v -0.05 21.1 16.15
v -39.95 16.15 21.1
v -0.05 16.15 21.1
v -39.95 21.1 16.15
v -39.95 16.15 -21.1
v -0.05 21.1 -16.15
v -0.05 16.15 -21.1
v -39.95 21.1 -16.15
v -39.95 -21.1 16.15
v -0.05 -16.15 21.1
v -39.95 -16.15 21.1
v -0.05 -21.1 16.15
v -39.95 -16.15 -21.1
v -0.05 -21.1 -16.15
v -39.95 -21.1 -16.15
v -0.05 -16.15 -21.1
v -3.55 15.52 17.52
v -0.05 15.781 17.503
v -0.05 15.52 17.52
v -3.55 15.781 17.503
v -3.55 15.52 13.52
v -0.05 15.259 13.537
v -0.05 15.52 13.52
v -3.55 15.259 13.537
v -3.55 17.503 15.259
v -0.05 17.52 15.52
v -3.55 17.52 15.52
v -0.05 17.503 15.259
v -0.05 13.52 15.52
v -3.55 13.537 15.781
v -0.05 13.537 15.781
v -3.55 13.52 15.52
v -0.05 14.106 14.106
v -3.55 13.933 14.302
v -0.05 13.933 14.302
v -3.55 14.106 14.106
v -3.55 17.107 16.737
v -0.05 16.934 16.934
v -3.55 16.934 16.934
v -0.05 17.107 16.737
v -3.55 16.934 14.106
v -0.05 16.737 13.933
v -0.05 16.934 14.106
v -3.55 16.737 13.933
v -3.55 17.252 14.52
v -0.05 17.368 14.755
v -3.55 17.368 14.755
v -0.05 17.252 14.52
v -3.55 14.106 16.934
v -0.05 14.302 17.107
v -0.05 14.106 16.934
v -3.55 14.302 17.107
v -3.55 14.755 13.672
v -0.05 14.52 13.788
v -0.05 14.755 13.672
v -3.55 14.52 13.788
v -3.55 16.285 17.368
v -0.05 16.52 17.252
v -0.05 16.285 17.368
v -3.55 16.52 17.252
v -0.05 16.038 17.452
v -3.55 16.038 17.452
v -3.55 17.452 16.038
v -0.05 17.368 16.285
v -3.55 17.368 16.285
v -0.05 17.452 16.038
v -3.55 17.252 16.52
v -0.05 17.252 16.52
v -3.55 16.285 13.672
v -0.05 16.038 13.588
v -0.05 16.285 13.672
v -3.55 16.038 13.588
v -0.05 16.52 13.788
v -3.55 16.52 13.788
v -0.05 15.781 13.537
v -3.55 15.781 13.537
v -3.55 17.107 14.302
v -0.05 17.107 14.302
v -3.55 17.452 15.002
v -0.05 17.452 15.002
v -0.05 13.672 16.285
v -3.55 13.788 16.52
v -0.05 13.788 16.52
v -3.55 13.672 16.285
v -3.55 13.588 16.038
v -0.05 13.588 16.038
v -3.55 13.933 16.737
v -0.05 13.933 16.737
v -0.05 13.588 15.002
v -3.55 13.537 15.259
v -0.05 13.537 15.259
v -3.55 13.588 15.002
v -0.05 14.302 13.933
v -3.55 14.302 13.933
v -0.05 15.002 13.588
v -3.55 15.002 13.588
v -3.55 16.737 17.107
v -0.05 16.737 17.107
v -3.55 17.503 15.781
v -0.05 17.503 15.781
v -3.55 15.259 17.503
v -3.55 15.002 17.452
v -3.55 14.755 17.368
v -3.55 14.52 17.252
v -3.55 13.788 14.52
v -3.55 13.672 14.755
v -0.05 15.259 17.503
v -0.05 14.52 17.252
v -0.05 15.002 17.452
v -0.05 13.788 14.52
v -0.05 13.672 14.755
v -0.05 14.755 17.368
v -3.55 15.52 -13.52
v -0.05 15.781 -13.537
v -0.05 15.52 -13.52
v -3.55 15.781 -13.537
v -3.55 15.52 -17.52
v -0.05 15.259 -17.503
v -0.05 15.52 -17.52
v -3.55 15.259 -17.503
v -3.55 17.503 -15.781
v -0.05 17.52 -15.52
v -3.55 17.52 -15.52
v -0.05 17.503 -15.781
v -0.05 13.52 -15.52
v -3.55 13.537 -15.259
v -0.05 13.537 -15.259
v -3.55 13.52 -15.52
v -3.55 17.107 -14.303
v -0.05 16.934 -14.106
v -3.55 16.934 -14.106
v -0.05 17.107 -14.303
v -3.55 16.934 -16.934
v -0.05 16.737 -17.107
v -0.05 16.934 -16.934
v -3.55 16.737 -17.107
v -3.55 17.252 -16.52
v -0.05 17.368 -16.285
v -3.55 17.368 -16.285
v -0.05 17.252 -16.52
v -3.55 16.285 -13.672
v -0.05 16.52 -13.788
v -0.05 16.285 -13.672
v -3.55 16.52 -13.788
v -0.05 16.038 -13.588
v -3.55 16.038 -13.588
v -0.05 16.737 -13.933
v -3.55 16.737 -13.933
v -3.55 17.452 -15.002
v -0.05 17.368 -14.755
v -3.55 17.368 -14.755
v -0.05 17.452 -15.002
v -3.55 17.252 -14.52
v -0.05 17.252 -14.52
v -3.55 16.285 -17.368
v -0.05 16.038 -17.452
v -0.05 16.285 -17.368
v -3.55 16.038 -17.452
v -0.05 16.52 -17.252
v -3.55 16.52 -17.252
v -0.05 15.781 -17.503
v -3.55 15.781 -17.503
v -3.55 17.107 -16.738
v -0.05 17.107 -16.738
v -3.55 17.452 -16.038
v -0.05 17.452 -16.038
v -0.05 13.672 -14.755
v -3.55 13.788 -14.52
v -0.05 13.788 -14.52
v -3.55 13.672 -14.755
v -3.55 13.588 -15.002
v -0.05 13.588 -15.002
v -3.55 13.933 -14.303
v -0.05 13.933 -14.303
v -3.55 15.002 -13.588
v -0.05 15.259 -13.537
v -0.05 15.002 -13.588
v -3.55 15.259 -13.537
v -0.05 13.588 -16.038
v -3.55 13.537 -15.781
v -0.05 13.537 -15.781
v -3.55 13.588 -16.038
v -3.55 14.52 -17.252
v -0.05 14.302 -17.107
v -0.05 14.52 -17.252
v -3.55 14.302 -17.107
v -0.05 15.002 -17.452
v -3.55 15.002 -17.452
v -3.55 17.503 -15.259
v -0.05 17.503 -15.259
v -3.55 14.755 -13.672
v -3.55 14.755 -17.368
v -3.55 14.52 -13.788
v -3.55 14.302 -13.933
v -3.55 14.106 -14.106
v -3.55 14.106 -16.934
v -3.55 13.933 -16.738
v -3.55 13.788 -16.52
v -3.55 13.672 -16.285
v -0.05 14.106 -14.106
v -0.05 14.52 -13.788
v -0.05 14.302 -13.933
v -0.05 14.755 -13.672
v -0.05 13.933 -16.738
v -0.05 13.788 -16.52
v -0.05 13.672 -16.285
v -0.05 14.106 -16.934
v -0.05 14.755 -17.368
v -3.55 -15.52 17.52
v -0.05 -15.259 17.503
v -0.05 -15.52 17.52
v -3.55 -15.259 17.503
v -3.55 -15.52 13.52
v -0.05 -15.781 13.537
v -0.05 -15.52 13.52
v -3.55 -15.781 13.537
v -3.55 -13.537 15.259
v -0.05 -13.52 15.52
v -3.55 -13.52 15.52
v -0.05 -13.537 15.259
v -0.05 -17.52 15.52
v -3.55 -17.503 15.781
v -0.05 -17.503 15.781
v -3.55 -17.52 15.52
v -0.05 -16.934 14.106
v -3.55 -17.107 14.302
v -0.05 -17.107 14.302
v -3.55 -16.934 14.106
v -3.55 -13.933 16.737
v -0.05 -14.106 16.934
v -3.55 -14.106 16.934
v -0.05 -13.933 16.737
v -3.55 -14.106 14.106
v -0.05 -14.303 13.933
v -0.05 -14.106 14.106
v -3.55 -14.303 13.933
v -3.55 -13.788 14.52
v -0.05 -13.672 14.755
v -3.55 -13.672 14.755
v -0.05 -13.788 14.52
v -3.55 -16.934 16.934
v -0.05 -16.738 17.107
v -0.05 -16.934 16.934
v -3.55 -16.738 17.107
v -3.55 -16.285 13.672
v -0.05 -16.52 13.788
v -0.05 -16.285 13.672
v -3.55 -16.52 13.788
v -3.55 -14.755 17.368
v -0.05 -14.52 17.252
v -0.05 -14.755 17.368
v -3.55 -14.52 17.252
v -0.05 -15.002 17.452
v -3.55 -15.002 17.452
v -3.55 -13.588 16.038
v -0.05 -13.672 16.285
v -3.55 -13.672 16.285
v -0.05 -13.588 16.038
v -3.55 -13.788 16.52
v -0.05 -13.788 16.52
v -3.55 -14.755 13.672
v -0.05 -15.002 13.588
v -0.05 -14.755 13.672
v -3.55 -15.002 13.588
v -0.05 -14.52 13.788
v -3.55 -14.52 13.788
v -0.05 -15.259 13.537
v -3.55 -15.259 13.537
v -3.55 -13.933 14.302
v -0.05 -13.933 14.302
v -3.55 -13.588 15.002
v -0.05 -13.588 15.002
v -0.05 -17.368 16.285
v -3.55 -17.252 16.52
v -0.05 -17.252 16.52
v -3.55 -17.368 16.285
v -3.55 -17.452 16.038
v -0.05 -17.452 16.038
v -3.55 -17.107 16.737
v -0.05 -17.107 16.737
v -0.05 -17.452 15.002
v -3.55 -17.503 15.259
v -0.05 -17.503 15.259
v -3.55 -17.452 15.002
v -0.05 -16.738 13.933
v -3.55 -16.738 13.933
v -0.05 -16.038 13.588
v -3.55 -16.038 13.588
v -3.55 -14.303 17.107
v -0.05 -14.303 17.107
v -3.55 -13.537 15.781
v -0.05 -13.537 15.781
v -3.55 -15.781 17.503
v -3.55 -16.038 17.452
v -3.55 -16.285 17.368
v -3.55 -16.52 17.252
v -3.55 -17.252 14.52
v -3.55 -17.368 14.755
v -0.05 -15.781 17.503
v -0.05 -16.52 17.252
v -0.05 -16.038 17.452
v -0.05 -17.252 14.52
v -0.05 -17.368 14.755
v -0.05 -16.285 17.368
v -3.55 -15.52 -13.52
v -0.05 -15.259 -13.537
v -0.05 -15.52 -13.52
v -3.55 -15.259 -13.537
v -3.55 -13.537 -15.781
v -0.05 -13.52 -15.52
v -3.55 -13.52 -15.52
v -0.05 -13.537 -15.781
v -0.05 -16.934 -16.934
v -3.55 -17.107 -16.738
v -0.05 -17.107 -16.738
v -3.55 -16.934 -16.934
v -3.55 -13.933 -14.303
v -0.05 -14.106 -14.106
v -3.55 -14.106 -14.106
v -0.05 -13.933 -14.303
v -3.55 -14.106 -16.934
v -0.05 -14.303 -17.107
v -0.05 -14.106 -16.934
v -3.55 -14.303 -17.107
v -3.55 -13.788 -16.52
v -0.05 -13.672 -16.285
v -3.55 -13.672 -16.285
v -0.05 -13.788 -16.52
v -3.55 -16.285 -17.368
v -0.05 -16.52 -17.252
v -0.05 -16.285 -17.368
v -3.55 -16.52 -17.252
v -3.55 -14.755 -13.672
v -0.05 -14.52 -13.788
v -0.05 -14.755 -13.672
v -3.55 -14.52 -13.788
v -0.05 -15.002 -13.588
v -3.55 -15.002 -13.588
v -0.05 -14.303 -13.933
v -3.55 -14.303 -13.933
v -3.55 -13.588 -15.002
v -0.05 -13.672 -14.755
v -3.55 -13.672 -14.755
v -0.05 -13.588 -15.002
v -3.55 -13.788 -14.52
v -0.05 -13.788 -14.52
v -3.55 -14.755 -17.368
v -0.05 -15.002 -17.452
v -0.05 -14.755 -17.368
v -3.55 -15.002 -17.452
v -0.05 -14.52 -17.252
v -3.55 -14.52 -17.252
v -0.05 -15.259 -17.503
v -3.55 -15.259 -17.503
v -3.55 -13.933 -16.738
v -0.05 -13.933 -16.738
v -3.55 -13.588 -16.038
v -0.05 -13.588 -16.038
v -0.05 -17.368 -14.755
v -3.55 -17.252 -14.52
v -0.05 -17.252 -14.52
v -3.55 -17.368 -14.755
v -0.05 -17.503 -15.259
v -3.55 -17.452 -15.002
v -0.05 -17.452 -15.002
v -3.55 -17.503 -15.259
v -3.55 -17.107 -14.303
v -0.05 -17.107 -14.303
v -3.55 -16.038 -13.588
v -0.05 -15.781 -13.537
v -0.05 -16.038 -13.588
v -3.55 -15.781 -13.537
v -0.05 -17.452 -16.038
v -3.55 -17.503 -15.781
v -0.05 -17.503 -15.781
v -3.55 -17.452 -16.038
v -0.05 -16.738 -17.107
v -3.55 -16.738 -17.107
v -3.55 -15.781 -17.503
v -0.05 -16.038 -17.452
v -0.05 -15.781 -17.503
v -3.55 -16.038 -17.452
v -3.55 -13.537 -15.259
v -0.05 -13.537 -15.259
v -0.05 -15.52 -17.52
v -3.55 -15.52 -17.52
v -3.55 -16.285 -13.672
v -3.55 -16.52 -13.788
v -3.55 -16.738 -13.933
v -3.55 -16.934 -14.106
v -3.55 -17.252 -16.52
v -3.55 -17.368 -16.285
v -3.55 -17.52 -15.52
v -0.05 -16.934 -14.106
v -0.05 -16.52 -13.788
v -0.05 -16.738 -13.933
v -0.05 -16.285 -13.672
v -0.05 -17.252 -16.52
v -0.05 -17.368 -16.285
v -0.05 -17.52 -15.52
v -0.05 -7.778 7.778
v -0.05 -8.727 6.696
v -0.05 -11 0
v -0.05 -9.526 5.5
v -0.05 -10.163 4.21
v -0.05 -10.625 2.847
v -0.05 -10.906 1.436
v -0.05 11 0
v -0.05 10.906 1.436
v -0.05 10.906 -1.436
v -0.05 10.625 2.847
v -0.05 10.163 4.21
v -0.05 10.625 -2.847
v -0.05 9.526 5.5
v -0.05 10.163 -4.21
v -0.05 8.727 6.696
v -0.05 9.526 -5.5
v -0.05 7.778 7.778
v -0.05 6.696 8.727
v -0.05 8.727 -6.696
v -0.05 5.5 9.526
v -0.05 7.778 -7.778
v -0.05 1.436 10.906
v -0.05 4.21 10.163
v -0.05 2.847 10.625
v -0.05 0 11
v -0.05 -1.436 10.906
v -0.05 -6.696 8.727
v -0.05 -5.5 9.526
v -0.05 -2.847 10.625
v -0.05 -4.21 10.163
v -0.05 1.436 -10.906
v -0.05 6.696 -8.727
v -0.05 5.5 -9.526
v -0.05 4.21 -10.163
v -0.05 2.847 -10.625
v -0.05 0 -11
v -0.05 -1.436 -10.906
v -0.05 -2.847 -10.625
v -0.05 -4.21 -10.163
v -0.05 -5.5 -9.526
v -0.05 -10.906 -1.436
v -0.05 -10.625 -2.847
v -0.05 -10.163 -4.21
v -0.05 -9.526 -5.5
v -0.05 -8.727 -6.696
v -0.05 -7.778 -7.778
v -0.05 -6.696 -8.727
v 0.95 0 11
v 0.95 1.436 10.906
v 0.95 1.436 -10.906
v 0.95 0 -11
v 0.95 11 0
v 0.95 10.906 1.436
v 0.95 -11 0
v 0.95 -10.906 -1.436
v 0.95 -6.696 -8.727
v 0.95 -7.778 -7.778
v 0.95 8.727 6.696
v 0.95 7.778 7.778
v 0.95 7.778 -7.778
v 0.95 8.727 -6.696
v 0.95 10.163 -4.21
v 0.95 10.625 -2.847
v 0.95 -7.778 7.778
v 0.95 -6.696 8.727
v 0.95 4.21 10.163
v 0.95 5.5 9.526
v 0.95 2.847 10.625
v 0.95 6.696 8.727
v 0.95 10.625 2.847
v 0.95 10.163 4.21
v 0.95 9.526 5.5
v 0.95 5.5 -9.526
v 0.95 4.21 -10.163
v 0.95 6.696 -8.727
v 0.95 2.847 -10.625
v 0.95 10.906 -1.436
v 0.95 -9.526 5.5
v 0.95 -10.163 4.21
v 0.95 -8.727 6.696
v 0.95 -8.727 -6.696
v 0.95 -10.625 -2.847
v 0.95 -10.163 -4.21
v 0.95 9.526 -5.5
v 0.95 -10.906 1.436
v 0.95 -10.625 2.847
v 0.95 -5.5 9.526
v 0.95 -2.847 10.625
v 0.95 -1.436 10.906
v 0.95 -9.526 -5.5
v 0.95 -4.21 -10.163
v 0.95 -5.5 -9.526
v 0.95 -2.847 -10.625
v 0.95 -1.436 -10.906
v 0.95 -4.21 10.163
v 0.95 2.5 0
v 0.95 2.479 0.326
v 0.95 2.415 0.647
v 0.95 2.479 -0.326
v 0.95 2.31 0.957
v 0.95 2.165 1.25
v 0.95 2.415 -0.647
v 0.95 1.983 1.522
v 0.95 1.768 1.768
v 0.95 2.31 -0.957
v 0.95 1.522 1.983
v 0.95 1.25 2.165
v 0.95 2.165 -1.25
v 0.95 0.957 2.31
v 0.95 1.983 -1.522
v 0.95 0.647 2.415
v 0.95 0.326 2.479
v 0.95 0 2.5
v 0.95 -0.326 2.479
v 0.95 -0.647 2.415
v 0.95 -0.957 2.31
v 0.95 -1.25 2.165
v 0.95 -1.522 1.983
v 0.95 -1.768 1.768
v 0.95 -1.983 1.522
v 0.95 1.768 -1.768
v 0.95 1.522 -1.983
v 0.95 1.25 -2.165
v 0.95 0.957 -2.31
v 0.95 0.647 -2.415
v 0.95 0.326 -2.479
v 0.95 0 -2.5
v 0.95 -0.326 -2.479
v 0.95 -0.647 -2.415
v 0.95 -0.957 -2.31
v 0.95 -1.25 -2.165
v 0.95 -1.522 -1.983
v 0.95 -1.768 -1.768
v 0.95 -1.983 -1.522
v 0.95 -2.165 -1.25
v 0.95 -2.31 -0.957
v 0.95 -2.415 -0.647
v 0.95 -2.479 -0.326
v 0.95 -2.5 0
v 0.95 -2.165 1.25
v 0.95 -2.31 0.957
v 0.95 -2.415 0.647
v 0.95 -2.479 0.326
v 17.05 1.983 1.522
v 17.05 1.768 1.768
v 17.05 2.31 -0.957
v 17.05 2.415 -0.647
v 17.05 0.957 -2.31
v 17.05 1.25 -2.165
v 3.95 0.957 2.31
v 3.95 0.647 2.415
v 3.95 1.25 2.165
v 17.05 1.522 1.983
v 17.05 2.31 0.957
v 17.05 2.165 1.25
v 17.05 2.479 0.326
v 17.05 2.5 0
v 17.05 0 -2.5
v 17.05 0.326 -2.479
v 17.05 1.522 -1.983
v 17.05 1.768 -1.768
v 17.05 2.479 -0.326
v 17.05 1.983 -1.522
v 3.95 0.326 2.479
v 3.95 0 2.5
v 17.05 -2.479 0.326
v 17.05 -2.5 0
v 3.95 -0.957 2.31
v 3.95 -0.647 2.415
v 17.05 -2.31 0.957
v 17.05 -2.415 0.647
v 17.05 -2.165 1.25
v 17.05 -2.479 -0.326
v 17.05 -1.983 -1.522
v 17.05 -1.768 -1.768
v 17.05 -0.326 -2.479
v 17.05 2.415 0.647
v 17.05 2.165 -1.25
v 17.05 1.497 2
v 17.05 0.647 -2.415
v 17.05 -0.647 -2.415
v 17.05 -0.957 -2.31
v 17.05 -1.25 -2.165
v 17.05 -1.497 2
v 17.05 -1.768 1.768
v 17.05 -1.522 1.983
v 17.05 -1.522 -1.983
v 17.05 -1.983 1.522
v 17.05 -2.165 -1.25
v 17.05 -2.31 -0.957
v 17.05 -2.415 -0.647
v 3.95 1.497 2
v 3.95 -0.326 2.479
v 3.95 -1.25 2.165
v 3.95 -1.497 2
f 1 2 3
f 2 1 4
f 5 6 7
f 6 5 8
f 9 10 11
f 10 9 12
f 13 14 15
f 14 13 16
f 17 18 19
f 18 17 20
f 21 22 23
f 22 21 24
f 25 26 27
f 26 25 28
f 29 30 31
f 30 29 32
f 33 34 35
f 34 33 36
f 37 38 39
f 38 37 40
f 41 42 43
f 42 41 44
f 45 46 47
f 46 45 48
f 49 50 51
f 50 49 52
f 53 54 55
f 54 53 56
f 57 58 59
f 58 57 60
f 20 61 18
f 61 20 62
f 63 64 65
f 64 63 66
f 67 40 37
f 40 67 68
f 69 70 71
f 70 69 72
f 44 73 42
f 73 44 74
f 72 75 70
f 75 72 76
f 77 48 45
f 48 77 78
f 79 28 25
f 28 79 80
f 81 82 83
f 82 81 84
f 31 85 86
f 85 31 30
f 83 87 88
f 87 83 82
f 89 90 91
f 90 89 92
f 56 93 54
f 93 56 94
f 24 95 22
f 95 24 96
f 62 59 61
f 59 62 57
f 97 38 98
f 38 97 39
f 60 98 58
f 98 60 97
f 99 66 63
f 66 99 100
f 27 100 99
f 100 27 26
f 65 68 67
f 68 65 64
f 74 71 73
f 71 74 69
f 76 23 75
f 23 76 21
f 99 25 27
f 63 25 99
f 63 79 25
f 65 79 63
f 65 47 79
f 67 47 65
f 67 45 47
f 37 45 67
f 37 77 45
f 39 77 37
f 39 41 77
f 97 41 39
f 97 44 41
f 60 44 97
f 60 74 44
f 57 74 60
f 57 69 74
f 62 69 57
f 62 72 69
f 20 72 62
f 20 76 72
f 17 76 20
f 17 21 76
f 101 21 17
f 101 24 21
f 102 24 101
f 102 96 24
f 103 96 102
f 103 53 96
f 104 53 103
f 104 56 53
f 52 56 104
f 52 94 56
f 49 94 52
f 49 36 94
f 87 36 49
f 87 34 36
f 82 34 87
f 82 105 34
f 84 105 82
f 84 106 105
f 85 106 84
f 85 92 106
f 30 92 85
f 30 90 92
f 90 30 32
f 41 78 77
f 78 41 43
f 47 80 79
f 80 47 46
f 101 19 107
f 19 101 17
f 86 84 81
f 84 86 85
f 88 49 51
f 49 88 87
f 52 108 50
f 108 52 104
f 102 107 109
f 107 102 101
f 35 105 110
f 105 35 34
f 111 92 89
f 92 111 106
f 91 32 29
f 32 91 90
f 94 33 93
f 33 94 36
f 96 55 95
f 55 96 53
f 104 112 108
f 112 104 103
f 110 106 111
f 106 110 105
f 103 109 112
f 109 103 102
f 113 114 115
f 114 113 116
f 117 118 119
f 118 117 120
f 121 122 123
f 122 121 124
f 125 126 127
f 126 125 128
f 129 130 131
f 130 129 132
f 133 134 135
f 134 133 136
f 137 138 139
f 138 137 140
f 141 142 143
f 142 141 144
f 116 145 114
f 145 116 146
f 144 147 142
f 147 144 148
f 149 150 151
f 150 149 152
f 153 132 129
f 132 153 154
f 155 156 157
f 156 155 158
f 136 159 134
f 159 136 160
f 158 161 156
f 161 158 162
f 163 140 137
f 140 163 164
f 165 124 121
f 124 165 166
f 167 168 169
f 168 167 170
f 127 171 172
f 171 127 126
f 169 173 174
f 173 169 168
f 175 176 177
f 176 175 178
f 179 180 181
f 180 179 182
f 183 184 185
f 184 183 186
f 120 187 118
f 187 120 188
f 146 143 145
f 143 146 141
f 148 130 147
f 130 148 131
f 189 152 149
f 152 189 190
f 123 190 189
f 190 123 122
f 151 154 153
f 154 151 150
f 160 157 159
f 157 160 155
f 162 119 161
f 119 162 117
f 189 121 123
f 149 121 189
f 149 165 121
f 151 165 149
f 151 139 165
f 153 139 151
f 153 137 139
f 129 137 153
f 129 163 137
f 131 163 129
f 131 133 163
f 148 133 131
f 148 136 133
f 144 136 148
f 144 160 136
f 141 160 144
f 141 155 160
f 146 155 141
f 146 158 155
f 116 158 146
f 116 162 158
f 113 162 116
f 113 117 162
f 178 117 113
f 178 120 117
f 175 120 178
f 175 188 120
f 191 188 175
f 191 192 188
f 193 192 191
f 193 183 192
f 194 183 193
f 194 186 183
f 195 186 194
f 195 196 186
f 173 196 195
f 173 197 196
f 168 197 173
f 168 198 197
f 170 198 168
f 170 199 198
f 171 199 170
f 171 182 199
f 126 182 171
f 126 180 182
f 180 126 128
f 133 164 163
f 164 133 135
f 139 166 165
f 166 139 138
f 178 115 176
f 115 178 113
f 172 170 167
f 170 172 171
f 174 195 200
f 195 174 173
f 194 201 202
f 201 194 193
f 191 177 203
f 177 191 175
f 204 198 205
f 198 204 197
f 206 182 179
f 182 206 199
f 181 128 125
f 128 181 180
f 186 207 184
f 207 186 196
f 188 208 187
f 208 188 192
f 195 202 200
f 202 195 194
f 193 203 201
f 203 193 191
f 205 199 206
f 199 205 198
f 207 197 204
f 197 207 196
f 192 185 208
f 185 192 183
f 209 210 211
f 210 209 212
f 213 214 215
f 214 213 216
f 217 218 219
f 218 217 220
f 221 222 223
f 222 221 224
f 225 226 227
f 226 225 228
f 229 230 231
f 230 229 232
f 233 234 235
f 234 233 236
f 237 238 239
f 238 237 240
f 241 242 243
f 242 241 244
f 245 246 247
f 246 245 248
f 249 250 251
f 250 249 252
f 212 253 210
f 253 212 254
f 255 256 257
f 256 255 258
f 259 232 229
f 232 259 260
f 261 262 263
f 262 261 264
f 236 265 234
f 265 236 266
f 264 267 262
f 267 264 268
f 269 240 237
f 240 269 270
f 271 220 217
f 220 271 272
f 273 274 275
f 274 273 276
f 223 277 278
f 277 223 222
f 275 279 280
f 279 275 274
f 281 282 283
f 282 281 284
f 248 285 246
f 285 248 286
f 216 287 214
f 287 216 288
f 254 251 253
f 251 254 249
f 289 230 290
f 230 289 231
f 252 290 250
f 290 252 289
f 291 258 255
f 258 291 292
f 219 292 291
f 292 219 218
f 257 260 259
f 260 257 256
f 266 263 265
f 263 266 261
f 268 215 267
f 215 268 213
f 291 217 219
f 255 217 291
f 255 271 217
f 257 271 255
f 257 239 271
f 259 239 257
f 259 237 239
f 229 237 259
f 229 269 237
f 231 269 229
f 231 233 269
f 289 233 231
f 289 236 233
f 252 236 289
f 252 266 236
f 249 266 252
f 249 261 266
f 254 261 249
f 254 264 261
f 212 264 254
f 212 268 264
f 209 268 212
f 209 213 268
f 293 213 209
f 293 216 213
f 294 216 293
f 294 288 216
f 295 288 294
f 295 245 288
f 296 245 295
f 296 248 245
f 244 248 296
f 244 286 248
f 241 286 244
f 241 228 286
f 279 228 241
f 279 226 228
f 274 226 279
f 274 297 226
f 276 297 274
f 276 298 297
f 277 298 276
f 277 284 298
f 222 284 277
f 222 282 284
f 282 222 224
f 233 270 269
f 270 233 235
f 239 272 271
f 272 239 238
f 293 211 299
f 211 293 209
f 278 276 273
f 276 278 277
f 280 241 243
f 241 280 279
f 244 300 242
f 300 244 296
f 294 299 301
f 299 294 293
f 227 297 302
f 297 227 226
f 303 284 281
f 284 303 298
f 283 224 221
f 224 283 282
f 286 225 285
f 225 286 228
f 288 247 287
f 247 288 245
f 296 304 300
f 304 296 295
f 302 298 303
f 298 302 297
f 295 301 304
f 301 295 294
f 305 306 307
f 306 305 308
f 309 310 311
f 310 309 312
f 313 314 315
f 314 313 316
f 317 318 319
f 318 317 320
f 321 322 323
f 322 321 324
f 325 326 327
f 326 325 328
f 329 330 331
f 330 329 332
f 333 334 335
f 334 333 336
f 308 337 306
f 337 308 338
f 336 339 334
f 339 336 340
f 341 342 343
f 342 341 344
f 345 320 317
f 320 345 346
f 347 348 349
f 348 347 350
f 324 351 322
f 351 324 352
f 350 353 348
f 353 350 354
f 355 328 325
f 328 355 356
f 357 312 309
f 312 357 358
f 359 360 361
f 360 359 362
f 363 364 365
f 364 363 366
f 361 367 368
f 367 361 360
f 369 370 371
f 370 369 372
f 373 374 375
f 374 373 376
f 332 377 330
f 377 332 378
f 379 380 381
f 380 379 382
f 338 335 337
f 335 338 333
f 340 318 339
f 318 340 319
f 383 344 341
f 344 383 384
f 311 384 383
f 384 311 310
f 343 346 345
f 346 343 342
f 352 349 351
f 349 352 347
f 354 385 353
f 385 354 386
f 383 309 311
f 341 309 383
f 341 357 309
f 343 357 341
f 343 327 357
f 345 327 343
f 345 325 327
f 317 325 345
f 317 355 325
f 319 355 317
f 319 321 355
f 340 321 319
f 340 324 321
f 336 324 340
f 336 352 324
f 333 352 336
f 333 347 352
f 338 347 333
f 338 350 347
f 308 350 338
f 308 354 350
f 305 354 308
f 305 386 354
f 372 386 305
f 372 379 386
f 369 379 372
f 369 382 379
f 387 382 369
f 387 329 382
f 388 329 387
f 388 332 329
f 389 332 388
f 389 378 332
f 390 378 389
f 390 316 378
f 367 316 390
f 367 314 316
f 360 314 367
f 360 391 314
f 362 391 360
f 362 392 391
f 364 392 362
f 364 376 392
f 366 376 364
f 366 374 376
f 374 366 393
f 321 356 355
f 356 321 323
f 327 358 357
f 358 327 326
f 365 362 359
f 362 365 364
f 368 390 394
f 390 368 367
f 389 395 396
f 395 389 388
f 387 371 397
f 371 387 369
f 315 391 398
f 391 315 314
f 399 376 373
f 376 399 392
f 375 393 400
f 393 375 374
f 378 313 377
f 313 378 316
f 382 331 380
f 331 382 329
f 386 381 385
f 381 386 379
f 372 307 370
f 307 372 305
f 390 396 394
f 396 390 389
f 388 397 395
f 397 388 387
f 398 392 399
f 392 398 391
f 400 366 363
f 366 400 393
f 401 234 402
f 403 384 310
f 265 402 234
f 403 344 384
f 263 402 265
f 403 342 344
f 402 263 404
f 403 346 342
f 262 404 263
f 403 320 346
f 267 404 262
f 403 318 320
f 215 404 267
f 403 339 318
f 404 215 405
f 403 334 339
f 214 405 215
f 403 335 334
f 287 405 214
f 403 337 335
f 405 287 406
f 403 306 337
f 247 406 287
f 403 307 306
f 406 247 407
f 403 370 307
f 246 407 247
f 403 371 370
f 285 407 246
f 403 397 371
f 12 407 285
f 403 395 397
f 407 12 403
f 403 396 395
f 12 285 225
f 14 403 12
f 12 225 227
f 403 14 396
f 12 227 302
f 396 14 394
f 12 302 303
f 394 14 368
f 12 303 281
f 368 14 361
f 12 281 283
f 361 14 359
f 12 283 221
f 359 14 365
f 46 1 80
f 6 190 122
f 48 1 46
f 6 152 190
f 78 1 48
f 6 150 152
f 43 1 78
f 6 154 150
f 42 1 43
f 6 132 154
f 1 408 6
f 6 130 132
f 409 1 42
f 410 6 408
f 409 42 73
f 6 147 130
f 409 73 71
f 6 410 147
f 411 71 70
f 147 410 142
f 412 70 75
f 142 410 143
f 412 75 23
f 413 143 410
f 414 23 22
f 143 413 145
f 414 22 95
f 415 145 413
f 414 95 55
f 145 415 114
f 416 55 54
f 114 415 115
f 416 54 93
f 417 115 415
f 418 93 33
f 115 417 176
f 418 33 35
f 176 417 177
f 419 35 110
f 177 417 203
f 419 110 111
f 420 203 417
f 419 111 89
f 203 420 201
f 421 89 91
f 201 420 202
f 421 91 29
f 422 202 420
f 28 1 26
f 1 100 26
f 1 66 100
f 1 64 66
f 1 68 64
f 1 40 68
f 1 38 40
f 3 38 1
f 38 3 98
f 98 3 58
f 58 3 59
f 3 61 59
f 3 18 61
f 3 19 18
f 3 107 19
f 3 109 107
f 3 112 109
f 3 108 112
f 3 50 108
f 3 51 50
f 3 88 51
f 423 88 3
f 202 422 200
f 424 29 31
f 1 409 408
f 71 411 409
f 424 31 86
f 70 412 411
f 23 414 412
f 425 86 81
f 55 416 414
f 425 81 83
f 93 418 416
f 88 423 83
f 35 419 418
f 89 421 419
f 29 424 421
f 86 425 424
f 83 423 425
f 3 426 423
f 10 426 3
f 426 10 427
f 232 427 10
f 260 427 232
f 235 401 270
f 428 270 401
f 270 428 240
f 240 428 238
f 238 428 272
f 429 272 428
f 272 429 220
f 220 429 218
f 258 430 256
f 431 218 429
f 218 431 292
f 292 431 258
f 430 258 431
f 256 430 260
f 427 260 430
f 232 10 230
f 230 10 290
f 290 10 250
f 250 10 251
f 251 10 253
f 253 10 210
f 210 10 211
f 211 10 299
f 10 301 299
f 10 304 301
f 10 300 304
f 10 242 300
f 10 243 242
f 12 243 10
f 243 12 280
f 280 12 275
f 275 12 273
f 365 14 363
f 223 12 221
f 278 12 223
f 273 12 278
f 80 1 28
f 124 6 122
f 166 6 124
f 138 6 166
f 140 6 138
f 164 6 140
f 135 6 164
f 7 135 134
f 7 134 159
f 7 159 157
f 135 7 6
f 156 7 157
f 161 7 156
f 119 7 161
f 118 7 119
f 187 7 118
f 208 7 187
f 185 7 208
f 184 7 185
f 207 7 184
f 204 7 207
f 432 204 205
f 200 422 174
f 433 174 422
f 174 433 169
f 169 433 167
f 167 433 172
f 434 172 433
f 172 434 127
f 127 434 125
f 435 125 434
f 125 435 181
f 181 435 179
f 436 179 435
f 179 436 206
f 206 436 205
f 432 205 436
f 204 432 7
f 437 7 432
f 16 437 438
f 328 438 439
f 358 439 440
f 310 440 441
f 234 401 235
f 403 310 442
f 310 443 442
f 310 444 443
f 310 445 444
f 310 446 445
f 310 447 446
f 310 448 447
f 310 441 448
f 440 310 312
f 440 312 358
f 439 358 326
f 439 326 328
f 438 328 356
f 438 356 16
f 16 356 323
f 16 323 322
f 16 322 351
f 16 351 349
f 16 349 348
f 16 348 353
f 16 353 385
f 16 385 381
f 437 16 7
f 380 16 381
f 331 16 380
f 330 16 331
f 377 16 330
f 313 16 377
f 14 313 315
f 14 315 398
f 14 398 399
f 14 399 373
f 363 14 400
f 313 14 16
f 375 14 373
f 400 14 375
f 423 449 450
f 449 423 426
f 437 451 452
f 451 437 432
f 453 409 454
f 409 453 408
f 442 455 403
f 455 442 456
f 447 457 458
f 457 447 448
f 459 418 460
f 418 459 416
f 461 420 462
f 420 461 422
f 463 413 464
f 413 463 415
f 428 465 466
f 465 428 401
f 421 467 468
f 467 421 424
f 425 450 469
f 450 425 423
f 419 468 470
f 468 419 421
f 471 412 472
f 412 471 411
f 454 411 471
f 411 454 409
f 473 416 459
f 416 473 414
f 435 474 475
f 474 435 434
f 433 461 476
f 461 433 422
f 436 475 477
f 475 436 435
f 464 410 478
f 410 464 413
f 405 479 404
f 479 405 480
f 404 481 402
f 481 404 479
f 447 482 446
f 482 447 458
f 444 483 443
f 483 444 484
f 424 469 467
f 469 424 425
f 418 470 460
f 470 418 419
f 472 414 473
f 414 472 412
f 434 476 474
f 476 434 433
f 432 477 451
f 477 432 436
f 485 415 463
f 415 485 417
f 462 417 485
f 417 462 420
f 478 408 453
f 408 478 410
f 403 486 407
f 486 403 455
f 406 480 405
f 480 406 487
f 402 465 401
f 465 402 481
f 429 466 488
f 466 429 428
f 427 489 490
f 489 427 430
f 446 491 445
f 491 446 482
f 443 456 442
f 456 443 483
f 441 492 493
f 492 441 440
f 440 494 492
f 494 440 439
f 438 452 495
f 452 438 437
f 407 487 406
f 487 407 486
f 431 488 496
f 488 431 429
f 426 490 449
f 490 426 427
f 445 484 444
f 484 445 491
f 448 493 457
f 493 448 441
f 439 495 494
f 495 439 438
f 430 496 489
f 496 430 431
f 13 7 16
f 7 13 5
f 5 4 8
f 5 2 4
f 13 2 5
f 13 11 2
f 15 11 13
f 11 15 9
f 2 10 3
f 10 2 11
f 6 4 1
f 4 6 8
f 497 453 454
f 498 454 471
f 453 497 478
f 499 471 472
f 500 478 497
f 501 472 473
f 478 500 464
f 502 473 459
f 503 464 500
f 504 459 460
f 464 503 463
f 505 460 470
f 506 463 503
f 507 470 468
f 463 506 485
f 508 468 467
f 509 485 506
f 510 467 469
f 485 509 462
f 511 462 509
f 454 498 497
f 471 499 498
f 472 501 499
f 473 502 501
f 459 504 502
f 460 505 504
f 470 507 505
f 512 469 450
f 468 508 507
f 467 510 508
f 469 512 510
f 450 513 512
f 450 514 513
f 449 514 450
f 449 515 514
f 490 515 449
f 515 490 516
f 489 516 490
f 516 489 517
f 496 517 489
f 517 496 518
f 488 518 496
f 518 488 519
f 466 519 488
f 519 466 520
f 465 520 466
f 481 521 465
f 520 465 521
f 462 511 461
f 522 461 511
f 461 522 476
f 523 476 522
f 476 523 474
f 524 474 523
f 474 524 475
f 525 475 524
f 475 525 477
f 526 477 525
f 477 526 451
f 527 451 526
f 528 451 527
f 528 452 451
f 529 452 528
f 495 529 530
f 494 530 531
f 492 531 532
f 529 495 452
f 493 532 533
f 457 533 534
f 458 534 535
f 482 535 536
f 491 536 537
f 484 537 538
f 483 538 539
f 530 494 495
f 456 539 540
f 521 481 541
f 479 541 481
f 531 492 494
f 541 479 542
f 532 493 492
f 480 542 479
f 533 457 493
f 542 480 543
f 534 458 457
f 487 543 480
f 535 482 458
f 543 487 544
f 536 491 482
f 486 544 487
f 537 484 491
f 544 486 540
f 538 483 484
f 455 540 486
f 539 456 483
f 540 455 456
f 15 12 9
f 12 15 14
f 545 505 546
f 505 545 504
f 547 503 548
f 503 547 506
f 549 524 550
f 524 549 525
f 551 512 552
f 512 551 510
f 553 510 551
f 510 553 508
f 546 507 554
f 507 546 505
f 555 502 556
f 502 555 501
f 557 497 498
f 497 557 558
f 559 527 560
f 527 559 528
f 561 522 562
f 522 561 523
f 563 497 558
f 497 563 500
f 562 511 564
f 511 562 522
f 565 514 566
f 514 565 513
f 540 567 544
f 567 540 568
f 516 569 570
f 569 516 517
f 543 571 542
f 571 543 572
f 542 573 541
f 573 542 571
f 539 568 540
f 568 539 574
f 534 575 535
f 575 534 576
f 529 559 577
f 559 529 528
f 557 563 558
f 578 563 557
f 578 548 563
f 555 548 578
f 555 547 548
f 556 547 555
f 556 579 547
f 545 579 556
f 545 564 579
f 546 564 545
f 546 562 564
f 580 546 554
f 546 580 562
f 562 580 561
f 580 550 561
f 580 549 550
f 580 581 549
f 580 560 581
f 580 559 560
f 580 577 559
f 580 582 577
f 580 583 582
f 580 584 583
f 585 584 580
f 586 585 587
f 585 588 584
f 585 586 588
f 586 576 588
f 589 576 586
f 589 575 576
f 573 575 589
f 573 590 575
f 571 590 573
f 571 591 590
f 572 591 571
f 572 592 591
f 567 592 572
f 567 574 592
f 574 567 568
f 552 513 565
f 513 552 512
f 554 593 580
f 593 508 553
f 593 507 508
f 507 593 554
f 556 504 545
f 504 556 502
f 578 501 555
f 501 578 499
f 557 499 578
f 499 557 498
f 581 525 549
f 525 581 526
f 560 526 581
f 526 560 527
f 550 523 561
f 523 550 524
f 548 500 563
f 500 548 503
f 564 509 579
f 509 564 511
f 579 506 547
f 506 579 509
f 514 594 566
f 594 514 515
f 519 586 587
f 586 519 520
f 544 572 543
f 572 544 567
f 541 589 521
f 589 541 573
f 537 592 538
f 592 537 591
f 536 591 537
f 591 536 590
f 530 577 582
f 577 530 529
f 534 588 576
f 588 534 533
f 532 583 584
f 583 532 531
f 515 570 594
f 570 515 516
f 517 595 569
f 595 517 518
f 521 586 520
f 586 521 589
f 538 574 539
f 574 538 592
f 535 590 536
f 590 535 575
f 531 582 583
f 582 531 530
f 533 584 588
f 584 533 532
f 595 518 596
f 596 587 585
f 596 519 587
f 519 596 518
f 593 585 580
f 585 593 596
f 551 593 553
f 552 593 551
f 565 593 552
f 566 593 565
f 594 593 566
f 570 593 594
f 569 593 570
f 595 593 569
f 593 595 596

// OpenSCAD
/**********************************************************************************************************************
 **
 ** lib/MCAD/stepper_nema17_medium.scad
 **
 ** This file renders a NEMA stepper motor of the dimensions specified by the file name.
 **
 **********************************************************************************************************************/

include <MCAD/stepper.scad>

$fn = 48;
translate([lookup(NemaRoundExtrusionHeight, Nema17)/2, 0, 0])
	rotate([0, -90, 0])
		motor(Nema17, NemaMedium, dualAxis = false);
